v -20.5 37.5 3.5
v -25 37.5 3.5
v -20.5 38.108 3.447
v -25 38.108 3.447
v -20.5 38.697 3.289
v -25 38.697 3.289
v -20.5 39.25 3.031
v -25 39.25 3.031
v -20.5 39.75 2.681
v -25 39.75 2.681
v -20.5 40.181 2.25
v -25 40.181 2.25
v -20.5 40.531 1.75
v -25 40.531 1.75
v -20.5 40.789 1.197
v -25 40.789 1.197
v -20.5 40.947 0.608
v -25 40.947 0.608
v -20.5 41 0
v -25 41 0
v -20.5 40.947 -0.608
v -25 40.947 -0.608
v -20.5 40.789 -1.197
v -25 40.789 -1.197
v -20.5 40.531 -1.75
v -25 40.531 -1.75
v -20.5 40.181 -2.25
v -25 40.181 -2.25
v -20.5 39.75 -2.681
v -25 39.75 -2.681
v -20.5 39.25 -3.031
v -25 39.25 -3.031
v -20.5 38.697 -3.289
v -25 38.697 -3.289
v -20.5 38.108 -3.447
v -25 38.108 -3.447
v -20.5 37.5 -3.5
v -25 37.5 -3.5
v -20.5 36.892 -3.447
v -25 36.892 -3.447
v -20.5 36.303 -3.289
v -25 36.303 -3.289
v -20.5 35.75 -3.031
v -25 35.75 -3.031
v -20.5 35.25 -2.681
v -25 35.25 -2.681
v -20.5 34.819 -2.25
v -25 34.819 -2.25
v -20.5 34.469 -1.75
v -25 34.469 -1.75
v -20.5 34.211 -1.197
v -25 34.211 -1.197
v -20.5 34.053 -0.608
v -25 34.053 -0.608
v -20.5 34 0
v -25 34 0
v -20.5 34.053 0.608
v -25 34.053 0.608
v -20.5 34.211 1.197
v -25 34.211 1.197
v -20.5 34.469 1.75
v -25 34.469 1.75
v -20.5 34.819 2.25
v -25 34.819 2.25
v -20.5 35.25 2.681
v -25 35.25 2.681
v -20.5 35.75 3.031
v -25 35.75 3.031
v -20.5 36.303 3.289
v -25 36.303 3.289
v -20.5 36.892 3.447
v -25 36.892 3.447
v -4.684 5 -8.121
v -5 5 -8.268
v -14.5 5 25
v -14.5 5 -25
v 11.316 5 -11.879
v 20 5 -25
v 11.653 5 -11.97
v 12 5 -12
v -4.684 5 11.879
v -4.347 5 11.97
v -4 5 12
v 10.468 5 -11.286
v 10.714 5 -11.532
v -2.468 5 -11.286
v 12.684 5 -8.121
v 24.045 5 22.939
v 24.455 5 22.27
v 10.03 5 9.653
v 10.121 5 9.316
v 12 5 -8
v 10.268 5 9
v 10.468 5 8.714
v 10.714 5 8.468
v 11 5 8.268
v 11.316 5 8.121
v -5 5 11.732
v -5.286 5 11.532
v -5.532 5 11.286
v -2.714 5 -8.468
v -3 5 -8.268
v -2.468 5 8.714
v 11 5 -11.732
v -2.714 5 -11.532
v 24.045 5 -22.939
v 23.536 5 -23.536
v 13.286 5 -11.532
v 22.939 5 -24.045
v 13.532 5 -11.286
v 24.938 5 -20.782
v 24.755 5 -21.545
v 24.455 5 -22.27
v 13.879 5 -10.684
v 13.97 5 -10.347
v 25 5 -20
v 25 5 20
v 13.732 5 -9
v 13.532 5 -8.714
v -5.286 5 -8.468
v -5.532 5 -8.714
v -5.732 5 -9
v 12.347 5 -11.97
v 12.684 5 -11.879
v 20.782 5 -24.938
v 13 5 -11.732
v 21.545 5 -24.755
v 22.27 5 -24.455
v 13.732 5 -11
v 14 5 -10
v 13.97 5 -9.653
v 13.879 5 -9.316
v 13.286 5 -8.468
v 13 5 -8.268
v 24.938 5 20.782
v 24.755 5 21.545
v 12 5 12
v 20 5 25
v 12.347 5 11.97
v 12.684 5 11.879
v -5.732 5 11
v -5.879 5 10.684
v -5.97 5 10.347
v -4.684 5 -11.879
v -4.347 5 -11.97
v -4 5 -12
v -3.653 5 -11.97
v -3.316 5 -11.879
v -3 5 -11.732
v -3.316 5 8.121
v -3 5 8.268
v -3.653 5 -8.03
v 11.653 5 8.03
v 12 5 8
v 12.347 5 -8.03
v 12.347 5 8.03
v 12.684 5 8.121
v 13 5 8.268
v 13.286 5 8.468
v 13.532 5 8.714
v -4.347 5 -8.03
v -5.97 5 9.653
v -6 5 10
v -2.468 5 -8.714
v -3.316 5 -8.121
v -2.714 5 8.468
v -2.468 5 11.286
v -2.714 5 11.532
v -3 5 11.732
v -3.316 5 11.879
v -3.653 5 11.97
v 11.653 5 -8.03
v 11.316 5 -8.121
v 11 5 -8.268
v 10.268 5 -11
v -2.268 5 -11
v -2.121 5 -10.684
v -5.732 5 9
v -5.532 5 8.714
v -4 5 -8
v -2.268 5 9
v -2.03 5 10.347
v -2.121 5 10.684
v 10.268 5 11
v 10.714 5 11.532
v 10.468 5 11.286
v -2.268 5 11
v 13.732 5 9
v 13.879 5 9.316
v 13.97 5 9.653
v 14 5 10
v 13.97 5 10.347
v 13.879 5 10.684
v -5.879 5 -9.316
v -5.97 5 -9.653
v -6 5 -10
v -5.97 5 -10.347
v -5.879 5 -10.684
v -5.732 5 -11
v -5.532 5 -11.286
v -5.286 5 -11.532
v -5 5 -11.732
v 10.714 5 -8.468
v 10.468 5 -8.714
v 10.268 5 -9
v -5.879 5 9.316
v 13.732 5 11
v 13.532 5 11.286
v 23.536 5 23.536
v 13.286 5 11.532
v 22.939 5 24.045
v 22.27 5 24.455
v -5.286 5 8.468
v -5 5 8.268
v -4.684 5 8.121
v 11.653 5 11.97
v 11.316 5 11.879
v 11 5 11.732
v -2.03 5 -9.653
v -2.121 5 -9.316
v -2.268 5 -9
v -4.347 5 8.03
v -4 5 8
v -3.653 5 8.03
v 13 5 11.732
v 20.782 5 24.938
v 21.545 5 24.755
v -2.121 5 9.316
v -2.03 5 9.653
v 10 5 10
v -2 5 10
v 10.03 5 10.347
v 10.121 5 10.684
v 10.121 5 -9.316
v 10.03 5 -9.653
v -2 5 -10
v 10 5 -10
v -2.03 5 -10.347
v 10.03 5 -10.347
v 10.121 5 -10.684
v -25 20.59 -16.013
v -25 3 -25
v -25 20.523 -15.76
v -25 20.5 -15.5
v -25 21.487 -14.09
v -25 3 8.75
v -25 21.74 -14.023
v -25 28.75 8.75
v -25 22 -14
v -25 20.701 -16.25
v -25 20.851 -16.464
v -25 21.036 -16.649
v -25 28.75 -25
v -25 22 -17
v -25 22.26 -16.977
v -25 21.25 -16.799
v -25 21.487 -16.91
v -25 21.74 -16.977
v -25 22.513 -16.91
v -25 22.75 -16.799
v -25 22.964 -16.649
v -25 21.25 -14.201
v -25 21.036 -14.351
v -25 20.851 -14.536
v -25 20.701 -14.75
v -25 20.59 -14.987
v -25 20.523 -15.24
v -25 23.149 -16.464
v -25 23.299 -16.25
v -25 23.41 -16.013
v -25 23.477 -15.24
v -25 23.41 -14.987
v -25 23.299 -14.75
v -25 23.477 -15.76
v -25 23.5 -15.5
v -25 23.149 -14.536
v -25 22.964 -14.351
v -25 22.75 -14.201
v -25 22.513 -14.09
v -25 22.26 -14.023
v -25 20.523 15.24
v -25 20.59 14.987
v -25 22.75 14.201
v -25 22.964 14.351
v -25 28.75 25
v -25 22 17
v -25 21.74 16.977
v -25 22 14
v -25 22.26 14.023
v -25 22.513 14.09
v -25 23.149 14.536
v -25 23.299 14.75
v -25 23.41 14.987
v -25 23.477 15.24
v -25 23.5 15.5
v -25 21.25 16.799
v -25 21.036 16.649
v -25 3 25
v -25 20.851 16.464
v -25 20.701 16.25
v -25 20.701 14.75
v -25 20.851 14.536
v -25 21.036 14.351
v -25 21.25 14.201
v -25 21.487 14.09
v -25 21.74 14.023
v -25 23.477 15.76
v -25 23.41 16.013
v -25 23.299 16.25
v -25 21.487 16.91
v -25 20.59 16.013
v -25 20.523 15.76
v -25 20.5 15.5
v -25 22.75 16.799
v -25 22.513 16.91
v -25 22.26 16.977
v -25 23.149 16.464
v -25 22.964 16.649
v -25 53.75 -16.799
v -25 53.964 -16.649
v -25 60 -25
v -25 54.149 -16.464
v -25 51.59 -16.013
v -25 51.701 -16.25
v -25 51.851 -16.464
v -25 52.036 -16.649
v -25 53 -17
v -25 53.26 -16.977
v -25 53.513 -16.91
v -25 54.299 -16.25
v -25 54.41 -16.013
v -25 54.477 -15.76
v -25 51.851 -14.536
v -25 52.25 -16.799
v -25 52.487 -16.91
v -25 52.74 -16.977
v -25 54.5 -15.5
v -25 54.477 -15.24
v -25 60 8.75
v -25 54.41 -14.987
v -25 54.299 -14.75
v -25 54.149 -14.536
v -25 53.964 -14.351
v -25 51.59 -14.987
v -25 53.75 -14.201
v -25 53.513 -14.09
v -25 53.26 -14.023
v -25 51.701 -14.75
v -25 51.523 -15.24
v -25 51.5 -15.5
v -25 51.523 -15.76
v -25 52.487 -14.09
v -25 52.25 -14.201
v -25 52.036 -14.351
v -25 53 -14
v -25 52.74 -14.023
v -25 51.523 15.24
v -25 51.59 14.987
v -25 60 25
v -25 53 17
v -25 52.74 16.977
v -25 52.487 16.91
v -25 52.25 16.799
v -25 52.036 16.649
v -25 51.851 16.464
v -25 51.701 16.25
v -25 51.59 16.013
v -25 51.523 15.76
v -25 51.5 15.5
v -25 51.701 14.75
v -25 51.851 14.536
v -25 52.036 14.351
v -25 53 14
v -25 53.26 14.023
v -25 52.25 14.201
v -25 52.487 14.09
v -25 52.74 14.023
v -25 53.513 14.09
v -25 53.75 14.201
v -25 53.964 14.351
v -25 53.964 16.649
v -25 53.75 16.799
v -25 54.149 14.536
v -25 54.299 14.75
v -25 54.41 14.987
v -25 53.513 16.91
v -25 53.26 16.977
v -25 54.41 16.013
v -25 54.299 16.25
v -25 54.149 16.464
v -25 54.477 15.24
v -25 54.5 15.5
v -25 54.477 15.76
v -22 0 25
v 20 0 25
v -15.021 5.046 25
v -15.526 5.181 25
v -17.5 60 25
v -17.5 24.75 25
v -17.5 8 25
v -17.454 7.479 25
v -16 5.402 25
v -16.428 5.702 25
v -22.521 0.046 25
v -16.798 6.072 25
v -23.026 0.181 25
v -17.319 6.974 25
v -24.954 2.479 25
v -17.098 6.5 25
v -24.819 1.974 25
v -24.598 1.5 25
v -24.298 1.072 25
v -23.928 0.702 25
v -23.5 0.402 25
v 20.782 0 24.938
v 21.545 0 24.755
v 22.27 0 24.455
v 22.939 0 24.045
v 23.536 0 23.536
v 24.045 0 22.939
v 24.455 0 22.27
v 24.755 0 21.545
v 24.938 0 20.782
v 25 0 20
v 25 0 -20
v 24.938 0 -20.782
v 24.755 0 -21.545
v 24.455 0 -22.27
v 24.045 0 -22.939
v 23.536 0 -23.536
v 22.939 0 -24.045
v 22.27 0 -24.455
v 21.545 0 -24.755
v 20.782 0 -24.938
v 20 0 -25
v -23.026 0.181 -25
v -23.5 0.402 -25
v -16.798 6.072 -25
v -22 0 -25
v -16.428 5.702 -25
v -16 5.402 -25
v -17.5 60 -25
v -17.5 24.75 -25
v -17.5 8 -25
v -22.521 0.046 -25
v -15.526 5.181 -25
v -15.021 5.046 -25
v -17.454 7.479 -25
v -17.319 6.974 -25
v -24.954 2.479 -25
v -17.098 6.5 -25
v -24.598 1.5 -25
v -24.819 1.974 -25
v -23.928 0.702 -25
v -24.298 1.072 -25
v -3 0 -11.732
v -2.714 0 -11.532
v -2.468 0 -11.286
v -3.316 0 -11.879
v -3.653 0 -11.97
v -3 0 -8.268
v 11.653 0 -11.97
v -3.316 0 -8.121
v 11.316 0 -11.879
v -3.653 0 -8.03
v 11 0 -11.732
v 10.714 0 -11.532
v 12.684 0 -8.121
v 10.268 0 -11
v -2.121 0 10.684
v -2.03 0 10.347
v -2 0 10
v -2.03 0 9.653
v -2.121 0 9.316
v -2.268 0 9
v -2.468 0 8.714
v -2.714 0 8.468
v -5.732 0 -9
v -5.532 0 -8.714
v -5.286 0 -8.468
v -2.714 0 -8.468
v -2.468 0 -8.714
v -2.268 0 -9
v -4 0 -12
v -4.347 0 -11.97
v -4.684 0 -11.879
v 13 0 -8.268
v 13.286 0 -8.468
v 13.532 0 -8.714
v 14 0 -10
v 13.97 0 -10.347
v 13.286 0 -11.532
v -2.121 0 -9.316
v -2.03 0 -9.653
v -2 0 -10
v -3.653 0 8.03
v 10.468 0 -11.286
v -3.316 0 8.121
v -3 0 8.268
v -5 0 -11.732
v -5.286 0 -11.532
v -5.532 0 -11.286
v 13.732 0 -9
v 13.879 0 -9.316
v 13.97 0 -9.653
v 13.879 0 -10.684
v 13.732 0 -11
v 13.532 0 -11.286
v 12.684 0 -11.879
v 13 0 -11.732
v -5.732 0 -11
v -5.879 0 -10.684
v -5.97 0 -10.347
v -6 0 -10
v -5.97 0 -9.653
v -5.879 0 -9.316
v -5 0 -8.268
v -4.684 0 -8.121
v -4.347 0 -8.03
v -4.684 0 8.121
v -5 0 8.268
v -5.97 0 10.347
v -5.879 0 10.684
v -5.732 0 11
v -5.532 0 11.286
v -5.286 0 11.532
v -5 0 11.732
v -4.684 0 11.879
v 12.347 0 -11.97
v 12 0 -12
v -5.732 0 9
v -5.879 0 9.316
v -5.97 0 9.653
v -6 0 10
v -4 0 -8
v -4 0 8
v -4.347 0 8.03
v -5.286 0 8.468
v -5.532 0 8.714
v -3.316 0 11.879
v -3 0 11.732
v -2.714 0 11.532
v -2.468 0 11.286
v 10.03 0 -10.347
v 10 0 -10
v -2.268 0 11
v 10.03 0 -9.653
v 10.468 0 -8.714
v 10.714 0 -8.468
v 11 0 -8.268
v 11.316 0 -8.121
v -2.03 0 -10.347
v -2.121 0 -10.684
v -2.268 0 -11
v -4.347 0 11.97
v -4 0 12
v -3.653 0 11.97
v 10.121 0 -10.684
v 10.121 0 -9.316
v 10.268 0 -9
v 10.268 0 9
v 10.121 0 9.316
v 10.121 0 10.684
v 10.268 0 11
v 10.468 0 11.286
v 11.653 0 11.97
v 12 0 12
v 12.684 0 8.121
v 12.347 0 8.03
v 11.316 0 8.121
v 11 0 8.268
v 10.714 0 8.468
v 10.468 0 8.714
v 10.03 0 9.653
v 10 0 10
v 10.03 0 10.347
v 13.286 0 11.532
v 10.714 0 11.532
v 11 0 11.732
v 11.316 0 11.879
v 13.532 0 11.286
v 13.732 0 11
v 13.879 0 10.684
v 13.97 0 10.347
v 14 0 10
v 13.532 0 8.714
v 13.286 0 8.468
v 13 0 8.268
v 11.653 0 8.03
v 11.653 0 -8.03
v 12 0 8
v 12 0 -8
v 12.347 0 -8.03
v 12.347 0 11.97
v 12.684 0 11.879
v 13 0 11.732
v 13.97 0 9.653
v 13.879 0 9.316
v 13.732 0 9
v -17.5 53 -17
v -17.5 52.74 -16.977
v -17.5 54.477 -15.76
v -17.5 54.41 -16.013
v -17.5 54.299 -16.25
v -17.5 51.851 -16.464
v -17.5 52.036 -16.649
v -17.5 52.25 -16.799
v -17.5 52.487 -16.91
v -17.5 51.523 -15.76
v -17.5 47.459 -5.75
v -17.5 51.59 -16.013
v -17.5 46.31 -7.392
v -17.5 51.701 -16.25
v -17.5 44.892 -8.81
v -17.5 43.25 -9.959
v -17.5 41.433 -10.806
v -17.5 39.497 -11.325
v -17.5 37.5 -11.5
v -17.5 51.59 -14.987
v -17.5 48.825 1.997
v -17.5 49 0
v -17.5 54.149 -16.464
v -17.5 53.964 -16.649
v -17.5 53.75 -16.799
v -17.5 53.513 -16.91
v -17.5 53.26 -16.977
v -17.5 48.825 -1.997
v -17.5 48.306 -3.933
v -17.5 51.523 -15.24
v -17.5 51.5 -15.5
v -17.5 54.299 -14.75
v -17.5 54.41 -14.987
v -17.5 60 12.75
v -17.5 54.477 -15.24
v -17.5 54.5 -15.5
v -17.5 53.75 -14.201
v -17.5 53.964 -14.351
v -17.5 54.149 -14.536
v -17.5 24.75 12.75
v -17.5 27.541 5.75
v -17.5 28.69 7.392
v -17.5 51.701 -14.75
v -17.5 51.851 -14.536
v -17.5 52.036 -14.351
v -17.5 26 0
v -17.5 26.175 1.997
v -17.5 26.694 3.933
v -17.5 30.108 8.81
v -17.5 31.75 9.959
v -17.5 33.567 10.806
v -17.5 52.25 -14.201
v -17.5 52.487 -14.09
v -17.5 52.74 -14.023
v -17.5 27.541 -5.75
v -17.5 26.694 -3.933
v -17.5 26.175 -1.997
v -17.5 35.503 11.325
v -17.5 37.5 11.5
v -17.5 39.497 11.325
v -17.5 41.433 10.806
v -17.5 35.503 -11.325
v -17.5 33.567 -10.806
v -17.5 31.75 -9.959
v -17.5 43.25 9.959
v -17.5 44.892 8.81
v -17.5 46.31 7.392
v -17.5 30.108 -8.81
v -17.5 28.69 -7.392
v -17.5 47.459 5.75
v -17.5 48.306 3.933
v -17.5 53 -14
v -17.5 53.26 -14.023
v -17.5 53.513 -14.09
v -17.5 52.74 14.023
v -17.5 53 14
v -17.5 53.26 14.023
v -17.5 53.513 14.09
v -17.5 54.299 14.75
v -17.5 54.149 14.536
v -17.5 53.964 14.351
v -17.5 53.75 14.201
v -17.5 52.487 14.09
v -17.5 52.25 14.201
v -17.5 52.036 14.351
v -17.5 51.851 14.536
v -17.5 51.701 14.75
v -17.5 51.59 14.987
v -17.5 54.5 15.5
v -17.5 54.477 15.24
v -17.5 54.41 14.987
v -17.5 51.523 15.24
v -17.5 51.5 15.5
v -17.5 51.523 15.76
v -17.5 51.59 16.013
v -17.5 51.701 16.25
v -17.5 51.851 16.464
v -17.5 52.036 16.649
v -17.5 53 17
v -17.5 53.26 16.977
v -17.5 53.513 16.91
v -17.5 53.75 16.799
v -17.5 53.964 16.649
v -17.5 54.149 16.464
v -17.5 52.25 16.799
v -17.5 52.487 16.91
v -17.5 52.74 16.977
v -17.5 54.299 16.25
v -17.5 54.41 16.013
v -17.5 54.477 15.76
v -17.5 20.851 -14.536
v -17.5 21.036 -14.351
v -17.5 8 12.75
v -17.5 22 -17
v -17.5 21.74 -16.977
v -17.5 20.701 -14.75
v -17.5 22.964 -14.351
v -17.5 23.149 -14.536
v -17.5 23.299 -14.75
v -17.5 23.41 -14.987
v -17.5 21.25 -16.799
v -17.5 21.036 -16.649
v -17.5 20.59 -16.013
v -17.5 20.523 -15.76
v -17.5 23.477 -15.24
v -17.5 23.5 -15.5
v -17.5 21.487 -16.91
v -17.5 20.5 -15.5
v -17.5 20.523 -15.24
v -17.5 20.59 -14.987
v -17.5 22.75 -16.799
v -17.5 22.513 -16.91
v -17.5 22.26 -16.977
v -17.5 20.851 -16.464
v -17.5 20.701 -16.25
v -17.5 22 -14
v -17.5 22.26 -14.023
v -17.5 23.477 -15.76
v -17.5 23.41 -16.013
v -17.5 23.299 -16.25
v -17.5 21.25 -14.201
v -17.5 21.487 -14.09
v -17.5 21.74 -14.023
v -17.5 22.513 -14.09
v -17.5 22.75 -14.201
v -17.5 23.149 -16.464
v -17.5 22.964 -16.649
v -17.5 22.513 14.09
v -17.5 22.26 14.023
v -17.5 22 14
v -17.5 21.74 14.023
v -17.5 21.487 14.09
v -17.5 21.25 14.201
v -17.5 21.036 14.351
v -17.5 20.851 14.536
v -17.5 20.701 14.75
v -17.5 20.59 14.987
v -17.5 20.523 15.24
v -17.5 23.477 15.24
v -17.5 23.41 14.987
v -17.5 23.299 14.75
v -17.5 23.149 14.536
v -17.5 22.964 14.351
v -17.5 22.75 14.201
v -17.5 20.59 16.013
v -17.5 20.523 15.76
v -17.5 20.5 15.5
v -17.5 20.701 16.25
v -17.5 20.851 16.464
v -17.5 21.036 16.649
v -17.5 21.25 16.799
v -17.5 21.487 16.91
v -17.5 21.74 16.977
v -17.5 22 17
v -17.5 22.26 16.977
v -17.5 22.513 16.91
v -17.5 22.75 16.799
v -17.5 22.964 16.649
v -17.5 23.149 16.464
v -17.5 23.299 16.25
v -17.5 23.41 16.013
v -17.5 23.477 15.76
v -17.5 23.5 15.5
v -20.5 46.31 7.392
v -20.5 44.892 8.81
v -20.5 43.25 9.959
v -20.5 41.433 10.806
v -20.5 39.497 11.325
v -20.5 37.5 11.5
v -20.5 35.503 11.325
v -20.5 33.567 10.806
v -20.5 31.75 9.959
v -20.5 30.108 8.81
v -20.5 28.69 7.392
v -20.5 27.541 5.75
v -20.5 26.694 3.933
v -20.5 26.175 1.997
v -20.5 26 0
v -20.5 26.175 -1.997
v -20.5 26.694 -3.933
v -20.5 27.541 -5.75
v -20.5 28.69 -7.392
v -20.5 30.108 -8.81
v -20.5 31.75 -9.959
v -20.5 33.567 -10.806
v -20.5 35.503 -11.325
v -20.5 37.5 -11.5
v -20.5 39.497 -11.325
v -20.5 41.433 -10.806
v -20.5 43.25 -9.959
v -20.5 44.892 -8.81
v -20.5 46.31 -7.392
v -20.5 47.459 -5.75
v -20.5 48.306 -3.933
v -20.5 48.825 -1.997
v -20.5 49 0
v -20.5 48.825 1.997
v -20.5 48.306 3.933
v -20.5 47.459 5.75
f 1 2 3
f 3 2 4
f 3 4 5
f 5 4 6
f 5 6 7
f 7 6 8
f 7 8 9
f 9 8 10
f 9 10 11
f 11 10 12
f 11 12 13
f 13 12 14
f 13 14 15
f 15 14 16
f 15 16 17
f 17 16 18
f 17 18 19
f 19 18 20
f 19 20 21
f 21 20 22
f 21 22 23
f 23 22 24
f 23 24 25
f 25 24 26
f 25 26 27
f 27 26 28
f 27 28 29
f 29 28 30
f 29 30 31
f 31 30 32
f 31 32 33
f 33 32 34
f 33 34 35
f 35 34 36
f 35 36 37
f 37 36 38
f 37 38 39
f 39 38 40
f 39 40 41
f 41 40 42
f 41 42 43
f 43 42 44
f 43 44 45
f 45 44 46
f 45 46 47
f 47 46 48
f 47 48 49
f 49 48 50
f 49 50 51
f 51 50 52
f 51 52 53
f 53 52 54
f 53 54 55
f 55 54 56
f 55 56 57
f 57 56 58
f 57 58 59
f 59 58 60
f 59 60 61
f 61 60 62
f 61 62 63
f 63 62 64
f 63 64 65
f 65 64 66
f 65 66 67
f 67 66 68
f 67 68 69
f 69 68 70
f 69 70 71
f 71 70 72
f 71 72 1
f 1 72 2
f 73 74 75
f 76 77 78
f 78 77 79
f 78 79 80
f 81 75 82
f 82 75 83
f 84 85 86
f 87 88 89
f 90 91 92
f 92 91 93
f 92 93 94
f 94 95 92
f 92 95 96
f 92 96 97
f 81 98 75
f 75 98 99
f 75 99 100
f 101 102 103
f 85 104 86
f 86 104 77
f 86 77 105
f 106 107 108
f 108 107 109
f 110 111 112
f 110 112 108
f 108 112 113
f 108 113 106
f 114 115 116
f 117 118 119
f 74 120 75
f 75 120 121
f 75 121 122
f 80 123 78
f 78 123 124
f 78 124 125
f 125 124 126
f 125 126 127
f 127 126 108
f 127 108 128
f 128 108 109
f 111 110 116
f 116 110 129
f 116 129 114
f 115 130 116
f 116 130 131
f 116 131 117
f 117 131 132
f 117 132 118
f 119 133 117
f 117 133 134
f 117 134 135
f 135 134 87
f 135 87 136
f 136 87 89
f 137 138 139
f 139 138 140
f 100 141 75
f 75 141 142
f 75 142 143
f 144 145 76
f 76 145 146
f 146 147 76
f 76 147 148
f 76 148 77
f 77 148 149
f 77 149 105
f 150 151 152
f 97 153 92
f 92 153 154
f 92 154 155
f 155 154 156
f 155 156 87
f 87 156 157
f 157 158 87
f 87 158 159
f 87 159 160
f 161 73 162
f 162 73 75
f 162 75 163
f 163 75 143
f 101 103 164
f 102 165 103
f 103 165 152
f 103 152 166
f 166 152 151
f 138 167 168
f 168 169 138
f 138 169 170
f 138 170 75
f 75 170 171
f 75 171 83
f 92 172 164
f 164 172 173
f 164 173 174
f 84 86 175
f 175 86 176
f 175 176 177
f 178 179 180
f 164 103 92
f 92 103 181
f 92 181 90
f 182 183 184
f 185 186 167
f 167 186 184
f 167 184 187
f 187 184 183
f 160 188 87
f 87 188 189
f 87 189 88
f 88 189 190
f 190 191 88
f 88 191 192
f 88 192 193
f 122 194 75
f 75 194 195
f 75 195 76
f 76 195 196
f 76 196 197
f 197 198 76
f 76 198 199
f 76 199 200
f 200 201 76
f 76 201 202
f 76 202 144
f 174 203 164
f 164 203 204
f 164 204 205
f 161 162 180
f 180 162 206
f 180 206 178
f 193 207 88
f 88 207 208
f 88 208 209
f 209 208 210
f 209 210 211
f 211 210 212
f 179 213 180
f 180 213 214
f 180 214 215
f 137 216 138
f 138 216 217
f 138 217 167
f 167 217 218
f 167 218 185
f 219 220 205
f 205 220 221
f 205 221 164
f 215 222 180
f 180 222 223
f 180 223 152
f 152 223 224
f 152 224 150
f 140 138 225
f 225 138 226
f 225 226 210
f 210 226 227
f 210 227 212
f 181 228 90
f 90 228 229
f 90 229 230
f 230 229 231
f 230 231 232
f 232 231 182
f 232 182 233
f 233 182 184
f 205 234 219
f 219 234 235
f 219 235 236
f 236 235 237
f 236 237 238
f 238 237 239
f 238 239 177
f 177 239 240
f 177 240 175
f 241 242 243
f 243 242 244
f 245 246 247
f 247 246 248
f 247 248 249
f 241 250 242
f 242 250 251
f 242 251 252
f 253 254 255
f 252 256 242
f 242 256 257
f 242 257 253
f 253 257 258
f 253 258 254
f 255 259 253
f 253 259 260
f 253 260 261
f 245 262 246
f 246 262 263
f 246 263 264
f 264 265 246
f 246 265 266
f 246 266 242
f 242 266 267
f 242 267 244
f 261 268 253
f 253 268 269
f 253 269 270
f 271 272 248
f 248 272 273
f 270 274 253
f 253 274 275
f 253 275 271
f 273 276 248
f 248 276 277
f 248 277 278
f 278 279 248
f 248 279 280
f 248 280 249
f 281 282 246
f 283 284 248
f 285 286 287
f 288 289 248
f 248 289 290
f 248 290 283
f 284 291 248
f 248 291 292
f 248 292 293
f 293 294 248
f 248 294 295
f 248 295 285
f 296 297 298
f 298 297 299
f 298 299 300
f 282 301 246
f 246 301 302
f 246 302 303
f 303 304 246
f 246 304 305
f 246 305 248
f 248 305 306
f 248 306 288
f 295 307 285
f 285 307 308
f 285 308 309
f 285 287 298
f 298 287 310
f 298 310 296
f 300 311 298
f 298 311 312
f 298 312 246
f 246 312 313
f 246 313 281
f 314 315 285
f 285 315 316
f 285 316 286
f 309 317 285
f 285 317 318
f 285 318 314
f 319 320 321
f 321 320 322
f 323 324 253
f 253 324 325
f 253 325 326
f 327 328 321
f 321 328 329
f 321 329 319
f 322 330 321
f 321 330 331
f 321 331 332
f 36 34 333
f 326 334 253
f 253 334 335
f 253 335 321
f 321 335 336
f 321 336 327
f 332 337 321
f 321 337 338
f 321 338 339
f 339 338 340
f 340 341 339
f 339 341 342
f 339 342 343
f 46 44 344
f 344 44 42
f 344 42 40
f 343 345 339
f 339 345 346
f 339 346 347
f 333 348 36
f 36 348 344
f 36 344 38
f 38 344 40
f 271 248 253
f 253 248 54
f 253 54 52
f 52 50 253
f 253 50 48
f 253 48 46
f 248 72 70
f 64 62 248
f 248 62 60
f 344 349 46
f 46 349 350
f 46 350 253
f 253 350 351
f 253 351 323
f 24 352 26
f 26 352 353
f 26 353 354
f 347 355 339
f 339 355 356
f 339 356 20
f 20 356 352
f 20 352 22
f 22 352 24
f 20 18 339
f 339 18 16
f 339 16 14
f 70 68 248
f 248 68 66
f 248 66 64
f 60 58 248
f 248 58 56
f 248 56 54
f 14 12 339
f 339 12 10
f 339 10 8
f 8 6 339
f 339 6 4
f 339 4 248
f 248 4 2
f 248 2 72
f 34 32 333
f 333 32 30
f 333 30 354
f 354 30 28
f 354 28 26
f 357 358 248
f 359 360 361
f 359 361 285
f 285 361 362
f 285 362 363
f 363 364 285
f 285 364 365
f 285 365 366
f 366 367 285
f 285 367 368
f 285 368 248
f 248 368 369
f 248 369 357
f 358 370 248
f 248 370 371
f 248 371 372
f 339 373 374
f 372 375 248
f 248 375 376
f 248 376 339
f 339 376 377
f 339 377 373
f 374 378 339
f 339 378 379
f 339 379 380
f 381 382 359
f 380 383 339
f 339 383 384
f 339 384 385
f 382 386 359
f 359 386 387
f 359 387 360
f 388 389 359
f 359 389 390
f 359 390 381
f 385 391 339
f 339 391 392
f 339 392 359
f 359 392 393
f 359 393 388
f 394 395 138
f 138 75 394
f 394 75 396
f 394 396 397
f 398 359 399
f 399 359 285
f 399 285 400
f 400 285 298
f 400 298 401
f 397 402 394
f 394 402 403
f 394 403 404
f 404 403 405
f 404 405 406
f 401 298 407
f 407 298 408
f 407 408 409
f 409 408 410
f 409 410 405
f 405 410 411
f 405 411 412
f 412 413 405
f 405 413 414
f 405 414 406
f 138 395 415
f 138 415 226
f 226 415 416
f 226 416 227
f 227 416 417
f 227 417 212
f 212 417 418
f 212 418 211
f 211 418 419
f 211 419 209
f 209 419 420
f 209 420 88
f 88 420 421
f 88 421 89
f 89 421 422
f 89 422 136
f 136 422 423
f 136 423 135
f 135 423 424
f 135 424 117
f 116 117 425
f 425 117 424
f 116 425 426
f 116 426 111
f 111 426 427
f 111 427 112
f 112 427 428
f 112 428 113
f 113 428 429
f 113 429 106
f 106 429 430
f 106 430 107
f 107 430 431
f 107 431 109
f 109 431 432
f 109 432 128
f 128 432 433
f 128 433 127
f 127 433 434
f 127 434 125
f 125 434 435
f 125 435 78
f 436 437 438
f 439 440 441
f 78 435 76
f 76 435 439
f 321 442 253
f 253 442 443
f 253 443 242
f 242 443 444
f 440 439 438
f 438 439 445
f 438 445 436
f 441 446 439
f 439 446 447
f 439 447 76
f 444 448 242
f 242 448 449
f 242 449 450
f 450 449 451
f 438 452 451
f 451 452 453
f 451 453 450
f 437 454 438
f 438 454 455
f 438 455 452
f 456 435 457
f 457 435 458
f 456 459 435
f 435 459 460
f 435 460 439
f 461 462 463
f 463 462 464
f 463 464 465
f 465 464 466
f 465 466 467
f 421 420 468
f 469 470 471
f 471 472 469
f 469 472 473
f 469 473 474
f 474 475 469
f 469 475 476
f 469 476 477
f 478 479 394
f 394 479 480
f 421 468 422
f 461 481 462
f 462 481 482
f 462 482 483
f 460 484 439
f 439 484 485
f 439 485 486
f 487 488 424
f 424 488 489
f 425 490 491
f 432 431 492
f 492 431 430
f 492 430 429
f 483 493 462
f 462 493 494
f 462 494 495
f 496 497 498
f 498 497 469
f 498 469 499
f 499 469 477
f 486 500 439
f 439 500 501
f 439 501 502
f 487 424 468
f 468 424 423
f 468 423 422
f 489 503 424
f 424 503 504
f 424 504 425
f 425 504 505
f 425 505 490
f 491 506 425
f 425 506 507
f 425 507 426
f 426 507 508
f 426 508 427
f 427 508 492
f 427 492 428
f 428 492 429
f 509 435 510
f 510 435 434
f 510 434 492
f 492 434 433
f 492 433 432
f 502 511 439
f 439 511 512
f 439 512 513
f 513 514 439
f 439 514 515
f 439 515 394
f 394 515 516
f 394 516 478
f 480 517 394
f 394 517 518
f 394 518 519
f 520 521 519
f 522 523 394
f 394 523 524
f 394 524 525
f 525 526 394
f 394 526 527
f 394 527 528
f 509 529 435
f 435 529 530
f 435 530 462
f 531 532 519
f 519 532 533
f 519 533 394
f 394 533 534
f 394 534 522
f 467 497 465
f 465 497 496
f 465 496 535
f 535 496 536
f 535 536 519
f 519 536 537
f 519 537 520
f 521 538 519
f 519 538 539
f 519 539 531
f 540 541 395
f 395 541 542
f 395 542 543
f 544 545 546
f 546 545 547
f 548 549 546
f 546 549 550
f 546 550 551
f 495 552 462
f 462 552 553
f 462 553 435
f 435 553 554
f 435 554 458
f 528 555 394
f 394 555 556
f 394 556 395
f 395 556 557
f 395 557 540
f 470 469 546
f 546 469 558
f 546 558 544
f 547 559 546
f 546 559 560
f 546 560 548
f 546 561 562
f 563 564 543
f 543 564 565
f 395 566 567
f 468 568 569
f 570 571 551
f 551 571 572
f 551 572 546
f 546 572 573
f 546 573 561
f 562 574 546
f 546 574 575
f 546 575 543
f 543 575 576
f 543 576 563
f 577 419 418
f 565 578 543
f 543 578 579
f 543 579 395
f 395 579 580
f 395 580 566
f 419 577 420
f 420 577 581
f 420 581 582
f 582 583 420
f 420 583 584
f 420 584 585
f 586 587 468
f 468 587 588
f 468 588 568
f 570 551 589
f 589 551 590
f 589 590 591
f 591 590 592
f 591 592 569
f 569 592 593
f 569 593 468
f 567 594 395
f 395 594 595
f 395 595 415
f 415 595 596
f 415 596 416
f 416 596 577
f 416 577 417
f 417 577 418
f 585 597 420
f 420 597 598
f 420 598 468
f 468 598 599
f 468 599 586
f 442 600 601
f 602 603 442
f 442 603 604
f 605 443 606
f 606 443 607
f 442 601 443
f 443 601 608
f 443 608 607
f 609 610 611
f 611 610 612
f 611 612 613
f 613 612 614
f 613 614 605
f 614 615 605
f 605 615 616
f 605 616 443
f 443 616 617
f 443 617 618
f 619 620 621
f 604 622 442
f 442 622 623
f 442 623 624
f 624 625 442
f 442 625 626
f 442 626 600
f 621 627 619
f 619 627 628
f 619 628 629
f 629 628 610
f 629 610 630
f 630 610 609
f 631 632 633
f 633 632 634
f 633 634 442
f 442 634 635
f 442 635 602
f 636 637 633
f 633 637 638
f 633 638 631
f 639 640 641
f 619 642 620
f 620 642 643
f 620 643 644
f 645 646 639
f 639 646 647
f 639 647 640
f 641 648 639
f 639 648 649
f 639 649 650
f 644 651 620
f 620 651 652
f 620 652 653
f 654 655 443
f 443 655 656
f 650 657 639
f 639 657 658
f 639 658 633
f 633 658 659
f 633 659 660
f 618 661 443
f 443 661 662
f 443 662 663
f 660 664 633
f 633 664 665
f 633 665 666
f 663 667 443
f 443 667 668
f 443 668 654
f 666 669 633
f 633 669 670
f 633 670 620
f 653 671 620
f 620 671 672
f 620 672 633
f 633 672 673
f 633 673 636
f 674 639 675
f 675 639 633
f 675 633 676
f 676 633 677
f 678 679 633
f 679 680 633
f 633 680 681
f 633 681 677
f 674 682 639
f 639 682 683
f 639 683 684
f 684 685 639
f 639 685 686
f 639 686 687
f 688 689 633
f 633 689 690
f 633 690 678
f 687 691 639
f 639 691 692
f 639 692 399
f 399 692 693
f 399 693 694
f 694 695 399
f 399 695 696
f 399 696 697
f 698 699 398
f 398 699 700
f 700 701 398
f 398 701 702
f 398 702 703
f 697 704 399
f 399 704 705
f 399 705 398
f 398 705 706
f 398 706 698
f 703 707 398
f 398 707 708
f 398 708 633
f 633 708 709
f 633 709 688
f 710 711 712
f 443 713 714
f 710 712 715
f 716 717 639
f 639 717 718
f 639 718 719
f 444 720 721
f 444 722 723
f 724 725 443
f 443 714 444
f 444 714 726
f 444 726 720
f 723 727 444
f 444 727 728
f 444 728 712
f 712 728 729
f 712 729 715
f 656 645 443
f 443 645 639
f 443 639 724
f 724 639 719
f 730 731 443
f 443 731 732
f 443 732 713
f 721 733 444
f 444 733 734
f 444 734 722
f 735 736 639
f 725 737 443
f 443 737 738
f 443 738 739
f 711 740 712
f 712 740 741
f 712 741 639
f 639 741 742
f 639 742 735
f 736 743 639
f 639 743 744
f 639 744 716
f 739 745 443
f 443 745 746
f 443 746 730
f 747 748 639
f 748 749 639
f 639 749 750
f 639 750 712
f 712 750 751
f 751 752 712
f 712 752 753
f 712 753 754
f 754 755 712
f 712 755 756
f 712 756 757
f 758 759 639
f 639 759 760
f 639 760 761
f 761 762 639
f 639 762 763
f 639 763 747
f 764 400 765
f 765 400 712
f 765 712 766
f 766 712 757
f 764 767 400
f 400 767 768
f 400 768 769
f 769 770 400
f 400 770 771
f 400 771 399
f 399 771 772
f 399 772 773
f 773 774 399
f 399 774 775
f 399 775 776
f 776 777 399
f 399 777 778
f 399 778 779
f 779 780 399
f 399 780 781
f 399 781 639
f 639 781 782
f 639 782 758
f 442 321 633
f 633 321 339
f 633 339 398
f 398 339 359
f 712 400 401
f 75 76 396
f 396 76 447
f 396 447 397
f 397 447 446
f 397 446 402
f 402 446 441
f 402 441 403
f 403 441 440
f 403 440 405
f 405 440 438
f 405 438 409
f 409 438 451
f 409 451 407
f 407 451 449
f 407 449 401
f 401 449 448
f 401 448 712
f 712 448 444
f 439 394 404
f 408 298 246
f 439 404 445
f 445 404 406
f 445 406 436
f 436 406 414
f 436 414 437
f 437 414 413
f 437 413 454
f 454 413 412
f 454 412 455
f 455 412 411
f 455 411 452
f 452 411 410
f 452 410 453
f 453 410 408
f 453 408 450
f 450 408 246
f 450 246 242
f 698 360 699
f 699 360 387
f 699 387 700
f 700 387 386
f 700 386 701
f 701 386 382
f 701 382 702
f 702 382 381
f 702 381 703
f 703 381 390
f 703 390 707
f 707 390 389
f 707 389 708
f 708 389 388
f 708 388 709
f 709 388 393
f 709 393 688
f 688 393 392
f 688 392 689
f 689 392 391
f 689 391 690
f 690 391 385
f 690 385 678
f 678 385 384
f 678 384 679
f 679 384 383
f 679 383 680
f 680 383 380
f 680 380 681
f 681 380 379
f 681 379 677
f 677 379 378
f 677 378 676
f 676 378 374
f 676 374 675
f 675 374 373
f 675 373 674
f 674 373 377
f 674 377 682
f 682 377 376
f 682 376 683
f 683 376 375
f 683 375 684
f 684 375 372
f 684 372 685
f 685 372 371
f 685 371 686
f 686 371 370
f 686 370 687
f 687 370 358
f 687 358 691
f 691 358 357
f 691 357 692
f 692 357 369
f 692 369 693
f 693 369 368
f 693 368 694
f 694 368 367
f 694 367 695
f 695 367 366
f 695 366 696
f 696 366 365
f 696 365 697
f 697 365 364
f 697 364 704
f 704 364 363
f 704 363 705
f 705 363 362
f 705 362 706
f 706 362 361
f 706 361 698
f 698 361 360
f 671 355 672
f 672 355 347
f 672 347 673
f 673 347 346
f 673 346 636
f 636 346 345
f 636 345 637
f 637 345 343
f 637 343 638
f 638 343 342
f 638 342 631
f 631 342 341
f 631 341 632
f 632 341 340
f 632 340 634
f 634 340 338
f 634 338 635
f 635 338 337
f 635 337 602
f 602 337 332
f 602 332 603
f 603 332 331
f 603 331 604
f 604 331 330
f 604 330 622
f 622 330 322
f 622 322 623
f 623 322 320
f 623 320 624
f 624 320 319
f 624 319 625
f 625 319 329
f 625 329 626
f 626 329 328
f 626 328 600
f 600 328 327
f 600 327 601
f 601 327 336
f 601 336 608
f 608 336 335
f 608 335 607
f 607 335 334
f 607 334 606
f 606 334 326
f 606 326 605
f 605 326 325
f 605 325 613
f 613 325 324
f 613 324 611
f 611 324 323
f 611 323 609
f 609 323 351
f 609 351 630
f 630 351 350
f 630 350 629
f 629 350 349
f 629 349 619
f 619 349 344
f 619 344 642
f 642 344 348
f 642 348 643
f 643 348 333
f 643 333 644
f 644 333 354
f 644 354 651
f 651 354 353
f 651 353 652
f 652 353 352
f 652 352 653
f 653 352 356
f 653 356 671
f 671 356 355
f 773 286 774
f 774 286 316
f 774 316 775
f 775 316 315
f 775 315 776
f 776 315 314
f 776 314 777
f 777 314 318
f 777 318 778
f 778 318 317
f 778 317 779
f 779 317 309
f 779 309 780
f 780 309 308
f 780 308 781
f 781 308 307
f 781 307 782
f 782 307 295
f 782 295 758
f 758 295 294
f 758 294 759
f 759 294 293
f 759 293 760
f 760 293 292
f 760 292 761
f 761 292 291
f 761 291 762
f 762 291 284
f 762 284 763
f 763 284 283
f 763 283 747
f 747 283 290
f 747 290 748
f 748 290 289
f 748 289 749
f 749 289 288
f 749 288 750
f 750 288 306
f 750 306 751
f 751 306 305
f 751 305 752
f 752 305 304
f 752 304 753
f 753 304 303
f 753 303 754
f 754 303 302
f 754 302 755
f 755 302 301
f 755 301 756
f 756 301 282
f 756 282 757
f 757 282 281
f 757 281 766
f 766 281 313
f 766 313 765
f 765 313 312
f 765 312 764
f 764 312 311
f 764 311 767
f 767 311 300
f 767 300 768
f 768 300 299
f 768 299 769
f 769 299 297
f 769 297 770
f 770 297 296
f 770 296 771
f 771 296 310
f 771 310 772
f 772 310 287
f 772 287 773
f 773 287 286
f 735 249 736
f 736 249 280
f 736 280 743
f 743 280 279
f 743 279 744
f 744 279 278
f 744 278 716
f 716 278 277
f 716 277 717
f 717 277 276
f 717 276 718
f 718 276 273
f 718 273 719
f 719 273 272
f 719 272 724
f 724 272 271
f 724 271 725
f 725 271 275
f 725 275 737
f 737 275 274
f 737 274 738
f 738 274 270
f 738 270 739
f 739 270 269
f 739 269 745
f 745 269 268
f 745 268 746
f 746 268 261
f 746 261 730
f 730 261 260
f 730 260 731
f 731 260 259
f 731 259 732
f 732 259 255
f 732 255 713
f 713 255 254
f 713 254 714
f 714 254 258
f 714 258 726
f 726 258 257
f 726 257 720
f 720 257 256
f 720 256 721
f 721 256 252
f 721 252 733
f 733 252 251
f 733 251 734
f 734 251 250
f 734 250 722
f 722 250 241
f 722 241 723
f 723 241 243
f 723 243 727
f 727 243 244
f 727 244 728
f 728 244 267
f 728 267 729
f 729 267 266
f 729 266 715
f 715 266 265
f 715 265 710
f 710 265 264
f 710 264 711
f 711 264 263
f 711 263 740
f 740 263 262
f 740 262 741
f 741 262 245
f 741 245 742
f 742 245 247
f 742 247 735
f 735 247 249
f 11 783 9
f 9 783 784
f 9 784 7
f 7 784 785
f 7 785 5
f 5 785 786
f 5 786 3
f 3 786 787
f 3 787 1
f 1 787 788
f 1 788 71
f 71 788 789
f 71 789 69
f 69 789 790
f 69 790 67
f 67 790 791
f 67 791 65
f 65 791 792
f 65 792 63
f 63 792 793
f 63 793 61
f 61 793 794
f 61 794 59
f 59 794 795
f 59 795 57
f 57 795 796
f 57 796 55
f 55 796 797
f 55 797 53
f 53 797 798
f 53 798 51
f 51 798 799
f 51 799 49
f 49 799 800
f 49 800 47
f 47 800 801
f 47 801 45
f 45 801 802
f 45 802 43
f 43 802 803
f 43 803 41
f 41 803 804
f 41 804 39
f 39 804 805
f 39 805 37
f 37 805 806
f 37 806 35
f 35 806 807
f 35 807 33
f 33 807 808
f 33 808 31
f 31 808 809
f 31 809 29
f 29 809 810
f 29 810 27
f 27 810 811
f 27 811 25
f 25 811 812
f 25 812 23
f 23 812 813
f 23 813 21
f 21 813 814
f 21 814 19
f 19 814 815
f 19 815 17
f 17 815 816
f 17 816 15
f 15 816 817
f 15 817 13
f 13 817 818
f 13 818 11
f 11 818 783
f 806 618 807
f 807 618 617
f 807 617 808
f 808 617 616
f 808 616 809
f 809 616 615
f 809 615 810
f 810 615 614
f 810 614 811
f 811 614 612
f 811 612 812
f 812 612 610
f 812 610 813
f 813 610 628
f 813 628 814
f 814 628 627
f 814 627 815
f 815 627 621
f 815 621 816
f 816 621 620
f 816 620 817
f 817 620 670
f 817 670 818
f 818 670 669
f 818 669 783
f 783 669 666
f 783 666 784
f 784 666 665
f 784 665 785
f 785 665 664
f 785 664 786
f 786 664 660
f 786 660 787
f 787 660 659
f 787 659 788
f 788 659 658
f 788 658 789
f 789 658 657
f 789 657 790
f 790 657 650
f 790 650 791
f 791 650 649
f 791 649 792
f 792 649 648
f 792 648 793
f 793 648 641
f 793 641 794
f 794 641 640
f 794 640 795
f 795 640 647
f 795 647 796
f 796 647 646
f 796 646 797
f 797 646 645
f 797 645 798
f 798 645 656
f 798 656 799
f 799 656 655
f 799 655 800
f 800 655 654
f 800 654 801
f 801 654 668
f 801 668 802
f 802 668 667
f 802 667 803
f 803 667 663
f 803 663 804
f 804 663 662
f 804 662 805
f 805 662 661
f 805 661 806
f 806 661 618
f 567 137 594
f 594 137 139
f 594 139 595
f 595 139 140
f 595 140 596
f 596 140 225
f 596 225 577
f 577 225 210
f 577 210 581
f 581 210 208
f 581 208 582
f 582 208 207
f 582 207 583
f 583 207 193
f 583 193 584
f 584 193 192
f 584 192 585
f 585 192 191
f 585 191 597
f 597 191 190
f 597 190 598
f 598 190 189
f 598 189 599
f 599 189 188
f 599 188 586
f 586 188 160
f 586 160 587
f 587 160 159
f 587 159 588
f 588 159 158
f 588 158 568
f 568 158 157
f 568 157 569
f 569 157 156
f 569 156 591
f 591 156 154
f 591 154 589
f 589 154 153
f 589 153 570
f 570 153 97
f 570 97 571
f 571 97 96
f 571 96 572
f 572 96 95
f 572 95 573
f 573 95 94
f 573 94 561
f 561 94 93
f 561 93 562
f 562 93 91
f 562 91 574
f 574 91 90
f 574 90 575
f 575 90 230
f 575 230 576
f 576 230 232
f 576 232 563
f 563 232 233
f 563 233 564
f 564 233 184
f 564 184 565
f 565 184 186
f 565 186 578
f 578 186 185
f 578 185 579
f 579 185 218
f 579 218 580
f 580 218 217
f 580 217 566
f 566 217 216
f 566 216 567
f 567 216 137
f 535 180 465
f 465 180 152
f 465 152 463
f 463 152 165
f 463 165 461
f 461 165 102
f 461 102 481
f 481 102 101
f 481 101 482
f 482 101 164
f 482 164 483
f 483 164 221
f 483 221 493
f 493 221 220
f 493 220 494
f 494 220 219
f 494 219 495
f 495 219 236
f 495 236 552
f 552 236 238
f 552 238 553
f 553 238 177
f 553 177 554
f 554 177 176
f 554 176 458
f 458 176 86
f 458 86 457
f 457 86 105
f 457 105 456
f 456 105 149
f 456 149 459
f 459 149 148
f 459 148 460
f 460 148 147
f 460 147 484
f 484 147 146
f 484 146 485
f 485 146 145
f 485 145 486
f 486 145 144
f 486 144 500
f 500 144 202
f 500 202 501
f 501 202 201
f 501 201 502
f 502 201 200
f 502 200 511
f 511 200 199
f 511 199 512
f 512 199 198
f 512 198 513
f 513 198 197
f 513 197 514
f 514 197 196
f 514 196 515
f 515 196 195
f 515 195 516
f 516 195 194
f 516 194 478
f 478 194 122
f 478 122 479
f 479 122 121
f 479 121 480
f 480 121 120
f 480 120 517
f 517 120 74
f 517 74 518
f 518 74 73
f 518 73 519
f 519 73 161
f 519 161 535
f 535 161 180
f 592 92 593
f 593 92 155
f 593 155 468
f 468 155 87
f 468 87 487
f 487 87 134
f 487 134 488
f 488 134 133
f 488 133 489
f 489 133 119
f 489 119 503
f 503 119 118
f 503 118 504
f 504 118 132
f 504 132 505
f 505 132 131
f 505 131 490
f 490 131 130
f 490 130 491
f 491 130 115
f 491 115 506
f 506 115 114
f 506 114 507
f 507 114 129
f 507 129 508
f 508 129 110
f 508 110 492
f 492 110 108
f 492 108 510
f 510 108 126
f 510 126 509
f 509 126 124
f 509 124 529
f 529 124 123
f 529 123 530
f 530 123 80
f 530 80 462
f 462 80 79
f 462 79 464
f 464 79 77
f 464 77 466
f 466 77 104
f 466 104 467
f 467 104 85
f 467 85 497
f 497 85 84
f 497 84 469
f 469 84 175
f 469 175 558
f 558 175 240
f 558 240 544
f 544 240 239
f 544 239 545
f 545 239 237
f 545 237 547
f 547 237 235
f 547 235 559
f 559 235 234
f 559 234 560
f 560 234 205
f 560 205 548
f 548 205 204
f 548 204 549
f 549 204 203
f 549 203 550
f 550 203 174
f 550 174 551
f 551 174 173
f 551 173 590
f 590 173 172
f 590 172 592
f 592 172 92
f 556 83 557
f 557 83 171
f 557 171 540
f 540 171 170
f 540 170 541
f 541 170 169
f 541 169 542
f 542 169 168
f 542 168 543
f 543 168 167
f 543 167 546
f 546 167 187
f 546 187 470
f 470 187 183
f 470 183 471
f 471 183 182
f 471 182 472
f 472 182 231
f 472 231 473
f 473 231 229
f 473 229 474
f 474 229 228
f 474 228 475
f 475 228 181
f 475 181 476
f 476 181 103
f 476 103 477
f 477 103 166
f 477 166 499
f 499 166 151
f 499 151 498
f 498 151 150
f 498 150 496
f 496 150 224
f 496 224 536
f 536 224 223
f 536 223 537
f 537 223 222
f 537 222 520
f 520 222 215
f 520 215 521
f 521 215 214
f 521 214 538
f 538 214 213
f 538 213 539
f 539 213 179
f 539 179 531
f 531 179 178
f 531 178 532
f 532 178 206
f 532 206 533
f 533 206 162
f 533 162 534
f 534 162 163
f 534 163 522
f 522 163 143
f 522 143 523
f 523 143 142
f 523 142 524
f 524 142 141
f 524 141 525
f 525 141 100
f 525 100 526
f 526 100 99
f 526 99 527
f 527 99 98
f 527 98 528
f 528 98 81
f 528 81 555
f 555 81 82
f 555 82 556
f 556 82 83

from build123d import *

# Parameters (mm, degrees)
BOSS_EXTRUDE1_DEPTH = 5
SKETCH2_W           = 7.5
SKETCH2_H           = 50
BOSS_EXTRUDE2_DEPTH = 55
FILLET1_R           = 3
FILLET2_R           = 3
SKETCH3_R           = 1.5
SKETCH3_R_2         = 3.5
CUT_EXTRUDE1_DEPTH  = 83.006097334
SKETCH4_R           = 11.5
CUT_EXTRUDE2_DEPTH  = 3
SKETCH6_R           = 2
CUT_EXTRUDE3_DEPTH  = 66.383484153


with BuildPart() as part:
    # Sketch1 → Boss-Extrude1 (new body)
    with BuildSketch(Plane(origin=(0, 0, 0), x_dir=(1, 0, 0), z_dir=(0, 1, 0))):
        with BuildLine():
            Line((-25, 25), (20, 25))
            ThreePointArc((20, 25), (23.535533906, 23.535533906), (25, 20))
            Line((25, 20), (25, -20))
            ThreePointArc((25, -20), (23.535533906, -23.535533906), (20, -25))
            Line((20, -25), (-25, -25))
            Line((-25, -25), (-25, 25))
        make_face()
    extrude(amount=BOSS_EXTRUDE1_DEPTH)

    # Sketch2 → Boss-Extrude2 (add)
    with BuildSketch(Plane(origin=(0, 5, 0), x_dir=(1, 0, 0), z_dir=(0, 1, 0))):
        with Locations((-21.25, 0)):
            Rectangle(SKETCH2_W, SKETCH2_H)
    extrude(amount=BOSS_EXTRUDE2_DEPTH)

    # Fillet1
    fillet1_edges = [part.edges().sort_by_distance(p)[0] for p in [
        (-17.5, 5, 0),
    ]]
    fillet(fillet1_edges, radius=FILLET1_R)

    # Fillet2
    fillet2_edges = [part.edges().sort_by_distance(p)[0] for p in [
        (-25, 0, 0),
    ]]
    fillet(fillet2_edges, radius=FILLET2_R)

    # Sketch3 → Cut-Extrude1 (cut, through all)
    with BuildSketch(Plane.ZY.offset(25)):
        with Locations((15.5, 53)):
            Circle(SKETCH3_R)
        with Locations(Location((-15.5, 53, 0), (0, 0, 180))):
            Circle(SKETCH3_R)
        with Locations((0, 37.5)):
            Circle(SKETCH3_R_2)
        with Locations(Location((15.5, 22, 0), (0, 0, 180))):
            Circle(SKETCH3_R)
        with Locations((-15.5, 22)):
            Circle(SKETCH3_R)
    extrude(amount=-CUT_EXTRUDE1_DEPTH, mode=Mode.SUBTRACT)

    # Sketch4 → Cut-Extrude2 (cut)
    with BuildSketch(Plane(origin=(-17.5, 0, 0), x_dir=(0, 0, -1), z_dir=(1, 0, 0))):
        with Locations((0, 37.5)):
            Circle(SKETCH4_R)
    extrude(amount=-CUT_EXTRUDE2_DEPTH, mode=Mode.SUBTRACT)

    # Sketch6 → Cut-Extrude3 (cut, through all)
    with BuildSketch(Plane(origin=(0, 5, 0), x_dir=(1, 0, 0), z_dir=(0, 1, 0))):
        with Locations(Location((12, -10, 0), (0, 0, 270))):
            Circle(SKETCH6_R)
        with Locations(Location((-4, -10, 0), (0, 0, 270))):
            Circle(SKETCH6_R)
        with Locations(Location((12, 10, 0), (0, 0, 90))):
            Circle(SKETCH6_R)
        with Locations(Location((-4, 10, 0), (0, 0, 90))):
            Circle(SKETCH6_R)
    extrude(amount=-CUT_EXTRUDE3_DEPTH, mode=Mode.SUBTRACT)


solid = part.part
